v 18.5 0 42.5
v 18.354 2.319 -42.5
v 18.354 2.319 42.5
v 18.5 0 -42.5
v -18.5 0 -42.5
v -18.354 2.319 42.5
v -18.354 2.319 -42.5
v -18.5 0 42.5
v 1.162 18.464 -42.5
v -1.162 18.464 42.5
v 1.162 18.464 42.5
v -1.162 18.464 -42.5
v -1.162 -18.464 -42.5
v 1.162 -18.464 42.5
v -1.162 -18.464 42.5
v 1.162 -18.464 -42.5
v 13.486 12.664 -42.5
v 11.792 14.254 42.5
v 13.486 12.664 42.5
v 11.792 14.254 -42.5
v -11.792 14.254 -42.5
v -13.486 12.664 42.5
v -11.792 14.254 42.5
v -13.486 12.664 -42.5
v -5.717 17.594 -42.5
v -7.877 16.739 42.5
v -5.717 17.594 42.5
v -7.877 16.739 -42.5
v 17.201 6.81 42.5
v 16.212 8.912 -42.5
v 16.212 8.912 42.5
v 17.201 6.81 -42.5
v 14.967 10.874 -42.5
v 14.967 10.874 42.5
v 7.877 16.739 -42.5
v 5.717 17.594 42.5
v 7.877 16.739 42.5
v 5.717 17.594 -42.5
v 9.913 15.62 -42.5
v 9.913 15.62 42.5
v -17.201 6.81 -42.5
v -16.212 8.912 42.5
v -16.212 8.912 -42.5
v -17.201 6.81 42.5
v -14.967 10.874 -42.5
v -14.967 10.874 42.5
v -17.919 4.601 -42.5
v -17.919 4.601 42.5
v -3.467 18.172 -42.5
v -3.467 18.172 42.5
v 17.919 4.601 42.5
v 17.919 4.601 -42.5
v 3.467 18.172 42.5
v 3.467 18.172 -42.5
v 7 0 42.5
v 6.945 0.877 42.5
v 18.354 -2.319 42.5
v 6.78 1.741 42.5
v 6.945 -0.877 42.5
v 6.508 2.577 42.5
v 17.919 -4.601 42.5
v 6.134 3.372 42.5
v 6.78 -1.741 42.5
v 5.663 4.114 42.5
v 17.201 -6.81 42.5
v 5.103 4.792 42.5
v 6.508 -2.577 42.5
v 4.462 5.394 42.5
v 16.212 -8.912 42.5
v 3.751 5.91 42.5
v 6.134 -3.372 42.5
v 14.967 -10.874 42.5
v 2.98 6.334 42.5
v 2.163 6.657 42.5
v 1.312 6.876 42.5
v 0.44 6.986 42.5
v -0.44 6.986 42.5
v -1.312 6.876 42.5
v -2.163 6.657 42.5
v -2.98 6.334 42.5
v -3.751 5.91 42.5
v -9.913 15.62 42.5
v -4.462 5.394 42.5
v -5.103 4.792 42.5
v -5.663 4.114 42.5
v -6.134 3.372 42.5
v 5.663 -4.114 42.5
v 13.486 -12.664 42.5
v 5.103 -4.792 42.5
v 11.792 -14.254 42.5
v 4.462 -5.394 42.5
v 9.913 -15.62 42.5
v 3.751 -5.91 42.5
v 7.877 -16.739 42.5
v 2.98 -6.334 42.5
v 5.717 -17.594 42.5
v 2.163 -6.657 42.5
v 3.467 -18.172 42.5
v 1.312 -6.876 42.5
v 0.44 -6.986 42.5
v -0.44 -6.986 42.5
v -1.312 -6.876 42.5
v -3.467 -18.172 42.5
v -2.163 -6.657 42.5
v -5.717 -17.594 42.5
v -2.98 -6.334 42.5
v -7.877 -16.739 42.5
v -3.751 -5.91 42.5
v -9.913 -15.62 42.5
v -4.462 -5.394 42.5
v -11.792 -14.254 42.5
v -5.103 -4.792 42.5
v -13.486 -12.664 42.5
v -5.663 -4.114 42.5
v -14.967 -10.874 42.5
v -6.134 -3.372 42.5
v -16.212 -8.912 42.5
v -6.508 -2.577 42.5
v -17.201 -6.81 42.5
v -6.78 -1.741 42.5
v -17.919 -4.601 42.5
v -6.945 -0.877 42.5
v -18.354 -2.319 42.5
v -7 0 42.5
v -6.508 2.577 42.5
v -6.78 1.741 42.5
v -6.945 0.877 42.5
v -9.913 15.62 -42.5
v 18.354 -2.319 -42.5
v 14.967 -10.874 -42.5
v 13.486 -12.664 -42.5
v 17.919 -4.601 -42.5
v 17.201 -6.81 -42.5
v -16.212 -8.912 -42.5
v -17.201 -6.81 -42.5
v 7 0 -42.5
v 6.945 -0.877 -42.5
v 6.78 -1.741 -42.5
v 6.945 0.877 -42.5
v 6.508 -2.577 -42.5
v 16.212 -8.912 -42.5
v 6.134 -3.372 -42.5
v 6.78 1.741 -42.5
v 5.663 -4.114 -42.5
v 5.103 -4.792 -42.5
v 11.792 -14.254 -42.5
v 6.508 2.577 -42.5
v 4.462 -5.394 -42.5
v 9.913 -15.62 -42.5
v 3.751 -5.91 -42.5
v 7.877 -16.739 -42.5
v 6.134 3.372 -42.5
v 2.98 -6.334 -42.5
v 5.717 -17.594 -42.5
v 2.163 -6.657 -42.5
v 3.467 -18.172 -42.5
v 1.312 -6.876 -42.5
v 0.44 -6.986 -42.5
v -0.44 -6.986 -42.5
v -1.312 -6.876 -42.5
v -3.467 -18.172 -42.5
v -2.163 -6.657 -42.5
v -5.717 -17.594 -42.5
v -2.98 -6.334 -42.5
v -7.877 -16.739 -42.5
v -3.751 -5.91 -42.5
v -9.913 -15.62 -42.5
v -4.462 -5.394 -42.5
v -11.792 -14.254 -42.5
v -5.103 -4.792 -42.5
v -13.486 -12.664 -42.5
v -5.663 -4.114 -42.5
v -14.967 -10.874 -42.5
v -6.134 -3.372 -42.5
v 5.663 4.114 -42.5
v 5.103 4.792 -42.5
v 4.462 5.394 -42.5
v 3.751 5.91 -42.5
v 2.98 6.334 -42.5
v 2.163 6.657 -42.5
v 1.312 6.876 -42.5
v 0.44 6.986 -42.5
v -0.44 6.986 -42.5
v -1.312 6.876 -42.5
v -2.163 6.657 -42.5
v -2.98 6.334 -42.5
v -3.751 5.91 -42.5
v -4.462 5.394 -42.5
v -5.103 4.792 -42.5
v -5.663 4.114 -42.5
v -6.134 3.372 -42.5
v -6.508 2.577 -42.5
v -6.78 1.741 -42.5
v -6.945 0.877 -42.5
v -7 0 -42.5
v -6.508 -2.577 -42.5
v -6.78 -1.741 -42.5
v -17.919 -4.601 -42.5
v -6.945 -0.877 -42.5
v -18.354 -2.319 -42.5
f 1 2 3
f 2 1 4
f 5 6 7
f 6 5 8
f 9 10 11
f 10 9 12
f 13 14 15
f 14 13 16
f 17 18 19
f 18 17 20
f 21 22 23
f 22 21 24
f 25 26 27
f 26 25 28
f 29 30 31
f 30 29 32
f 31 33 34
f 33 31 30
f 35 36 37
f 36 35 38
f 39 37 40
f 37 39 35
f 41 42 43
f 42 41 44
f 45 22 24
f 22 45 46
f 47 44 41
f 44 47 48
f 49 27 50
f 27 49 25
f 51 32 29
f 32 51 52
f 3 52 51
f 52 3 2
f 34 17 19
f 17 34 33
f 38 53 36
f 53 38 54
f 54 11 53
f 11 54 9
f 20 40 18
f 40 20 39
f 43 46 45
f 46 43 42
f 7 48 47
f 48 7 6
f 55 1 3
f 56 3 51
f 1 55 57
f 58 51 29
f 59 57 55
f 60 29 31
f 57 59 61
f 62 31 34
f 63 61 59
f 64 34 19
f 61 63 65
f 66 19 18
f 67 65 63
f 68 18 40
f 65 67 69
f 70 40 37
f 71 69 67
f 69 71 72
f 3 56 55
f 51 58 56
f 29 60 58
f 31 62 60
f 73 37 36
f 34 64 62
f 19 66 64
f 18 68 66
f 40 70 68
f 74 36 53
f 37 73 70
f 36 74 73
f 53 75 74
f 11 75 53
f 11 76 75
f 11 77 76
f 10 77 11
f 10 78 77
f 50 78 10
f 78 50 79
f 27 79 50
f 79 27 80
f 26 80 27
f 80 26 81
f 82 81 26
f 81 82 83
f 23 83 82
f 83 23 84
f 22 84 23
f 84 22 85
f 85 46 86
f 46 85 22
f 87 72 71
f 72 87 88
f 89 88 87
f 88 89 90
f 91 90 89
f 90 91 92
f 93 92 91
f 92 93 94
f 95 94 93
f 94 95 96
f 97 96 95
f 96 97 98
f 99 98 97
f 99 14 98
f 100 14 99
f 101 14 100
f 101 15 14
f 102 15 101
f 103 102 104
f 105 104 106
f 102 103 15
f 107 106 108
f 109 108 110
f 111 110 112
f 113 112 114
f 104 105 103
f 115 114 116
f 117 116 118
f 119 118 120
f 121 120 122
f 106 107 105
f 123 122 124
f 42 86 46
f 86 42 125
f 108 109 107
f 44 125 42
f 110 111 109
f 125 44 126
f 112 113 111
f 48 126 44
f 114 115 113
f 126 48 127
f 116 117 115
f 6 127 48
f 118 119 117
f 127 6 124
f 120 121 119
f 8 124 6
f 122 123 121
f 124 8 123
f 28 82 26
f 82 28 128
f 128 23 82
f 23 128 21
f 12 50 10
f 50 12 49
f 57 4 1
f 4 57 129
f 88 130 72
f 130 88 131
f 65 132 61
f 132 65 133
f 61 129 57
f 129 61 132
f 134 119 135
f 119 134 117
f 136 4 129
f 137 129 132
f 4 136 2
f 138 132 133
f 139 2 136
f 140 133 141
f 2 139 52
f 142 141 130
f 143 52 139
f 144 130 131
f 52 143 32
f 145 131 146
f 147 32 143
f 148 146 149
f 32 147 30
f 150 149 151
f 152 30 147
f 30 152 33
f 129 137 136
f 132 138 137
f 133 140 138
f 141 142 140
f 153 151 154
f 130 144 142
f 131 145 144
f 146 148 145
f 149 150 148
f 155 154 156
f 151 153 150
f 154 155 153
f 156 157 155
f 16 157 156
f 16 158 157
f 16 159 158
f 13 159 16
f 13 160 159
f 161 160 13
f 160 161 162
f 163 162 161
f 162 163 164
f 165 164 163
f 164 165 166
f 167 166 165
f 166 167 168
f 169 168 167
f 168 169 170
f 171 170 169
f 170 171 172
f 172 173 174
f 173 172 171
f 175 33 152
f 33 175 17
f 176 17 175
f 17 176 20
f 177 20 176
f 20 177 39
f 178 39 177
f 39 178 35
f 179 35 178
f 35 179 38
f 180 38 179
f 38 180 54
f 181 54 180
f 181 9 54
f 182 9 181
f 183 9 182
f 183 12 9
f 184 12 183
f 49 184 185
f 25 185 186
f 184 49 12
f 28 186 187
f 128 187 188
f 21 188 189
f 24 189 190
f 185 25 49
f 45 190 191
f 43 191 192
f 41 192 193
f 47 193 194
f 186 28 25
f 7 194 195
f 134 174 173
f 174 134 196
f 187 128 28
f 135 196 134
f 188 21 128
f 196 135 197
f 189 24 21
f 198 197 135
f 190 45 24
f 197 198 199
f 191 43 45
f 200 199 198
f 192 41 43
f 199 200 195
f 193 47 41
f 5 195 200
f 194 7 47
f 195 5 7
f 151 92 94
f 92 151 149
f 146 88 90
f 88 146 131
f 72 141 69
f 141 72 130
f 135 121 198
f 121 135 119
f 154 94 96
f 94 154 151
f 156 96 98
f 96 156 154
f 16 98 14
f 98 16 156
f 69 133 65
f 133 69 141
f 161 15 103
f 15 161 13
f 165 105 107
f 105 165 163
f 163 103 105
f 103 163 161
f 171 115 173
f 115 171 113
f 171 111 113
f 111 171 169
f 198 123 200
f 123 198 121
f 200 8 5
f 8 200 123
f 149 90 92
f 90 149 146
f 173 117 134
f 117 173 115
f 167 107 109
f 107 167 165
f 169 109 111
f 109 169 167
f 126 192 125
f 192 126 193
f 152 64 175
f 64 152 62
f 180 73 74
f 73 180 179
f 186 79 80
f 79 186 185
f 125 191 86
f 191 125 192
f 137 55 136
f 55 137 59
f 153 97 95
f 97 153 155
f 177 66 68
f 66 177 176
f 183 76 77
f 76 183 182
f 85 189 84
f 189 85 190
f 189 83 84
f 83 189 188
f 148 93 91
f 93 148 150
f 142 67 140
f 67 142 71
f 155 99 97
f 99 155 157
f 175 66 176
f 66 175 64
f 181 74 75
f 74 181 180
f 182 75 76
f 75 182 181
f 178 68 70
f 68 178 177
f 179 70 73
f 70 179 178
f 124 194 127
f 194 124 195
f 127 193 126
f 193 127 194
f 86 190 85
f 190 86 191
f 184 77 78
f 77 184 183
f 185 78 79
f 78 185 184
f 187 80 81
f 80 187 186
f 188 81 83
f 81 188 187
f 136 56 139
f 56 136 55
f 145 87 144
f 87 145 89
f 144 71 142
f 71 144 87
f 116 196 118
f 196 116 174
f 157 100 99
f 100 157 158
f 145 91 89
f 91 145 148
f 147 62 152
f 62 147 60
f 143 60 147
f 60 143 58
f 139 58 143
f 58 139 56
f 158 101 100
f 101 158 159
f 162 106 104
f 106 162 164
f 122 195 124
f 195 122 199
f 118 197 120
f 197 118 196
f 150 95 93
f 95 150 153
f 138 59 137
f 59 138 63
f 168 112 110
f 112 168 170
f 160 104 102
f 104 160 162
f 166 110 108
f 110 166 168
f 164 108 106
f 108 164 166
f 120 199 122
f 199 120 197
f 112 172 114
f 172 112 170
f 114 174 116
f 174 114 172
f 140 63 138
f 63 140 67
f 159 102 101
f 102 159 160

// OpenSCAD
$fn = 50;


difference() {
	union() {
		translate(v = [0, 0, -42.5000000000]) {
			cylinder(h = 85, r = 18.5000000000);
		}
	}
	union() {
		translate(v = [0, 0, -100.0000000000]) {
			cylinder(h = 200, r = 7);
		}
	}
}
